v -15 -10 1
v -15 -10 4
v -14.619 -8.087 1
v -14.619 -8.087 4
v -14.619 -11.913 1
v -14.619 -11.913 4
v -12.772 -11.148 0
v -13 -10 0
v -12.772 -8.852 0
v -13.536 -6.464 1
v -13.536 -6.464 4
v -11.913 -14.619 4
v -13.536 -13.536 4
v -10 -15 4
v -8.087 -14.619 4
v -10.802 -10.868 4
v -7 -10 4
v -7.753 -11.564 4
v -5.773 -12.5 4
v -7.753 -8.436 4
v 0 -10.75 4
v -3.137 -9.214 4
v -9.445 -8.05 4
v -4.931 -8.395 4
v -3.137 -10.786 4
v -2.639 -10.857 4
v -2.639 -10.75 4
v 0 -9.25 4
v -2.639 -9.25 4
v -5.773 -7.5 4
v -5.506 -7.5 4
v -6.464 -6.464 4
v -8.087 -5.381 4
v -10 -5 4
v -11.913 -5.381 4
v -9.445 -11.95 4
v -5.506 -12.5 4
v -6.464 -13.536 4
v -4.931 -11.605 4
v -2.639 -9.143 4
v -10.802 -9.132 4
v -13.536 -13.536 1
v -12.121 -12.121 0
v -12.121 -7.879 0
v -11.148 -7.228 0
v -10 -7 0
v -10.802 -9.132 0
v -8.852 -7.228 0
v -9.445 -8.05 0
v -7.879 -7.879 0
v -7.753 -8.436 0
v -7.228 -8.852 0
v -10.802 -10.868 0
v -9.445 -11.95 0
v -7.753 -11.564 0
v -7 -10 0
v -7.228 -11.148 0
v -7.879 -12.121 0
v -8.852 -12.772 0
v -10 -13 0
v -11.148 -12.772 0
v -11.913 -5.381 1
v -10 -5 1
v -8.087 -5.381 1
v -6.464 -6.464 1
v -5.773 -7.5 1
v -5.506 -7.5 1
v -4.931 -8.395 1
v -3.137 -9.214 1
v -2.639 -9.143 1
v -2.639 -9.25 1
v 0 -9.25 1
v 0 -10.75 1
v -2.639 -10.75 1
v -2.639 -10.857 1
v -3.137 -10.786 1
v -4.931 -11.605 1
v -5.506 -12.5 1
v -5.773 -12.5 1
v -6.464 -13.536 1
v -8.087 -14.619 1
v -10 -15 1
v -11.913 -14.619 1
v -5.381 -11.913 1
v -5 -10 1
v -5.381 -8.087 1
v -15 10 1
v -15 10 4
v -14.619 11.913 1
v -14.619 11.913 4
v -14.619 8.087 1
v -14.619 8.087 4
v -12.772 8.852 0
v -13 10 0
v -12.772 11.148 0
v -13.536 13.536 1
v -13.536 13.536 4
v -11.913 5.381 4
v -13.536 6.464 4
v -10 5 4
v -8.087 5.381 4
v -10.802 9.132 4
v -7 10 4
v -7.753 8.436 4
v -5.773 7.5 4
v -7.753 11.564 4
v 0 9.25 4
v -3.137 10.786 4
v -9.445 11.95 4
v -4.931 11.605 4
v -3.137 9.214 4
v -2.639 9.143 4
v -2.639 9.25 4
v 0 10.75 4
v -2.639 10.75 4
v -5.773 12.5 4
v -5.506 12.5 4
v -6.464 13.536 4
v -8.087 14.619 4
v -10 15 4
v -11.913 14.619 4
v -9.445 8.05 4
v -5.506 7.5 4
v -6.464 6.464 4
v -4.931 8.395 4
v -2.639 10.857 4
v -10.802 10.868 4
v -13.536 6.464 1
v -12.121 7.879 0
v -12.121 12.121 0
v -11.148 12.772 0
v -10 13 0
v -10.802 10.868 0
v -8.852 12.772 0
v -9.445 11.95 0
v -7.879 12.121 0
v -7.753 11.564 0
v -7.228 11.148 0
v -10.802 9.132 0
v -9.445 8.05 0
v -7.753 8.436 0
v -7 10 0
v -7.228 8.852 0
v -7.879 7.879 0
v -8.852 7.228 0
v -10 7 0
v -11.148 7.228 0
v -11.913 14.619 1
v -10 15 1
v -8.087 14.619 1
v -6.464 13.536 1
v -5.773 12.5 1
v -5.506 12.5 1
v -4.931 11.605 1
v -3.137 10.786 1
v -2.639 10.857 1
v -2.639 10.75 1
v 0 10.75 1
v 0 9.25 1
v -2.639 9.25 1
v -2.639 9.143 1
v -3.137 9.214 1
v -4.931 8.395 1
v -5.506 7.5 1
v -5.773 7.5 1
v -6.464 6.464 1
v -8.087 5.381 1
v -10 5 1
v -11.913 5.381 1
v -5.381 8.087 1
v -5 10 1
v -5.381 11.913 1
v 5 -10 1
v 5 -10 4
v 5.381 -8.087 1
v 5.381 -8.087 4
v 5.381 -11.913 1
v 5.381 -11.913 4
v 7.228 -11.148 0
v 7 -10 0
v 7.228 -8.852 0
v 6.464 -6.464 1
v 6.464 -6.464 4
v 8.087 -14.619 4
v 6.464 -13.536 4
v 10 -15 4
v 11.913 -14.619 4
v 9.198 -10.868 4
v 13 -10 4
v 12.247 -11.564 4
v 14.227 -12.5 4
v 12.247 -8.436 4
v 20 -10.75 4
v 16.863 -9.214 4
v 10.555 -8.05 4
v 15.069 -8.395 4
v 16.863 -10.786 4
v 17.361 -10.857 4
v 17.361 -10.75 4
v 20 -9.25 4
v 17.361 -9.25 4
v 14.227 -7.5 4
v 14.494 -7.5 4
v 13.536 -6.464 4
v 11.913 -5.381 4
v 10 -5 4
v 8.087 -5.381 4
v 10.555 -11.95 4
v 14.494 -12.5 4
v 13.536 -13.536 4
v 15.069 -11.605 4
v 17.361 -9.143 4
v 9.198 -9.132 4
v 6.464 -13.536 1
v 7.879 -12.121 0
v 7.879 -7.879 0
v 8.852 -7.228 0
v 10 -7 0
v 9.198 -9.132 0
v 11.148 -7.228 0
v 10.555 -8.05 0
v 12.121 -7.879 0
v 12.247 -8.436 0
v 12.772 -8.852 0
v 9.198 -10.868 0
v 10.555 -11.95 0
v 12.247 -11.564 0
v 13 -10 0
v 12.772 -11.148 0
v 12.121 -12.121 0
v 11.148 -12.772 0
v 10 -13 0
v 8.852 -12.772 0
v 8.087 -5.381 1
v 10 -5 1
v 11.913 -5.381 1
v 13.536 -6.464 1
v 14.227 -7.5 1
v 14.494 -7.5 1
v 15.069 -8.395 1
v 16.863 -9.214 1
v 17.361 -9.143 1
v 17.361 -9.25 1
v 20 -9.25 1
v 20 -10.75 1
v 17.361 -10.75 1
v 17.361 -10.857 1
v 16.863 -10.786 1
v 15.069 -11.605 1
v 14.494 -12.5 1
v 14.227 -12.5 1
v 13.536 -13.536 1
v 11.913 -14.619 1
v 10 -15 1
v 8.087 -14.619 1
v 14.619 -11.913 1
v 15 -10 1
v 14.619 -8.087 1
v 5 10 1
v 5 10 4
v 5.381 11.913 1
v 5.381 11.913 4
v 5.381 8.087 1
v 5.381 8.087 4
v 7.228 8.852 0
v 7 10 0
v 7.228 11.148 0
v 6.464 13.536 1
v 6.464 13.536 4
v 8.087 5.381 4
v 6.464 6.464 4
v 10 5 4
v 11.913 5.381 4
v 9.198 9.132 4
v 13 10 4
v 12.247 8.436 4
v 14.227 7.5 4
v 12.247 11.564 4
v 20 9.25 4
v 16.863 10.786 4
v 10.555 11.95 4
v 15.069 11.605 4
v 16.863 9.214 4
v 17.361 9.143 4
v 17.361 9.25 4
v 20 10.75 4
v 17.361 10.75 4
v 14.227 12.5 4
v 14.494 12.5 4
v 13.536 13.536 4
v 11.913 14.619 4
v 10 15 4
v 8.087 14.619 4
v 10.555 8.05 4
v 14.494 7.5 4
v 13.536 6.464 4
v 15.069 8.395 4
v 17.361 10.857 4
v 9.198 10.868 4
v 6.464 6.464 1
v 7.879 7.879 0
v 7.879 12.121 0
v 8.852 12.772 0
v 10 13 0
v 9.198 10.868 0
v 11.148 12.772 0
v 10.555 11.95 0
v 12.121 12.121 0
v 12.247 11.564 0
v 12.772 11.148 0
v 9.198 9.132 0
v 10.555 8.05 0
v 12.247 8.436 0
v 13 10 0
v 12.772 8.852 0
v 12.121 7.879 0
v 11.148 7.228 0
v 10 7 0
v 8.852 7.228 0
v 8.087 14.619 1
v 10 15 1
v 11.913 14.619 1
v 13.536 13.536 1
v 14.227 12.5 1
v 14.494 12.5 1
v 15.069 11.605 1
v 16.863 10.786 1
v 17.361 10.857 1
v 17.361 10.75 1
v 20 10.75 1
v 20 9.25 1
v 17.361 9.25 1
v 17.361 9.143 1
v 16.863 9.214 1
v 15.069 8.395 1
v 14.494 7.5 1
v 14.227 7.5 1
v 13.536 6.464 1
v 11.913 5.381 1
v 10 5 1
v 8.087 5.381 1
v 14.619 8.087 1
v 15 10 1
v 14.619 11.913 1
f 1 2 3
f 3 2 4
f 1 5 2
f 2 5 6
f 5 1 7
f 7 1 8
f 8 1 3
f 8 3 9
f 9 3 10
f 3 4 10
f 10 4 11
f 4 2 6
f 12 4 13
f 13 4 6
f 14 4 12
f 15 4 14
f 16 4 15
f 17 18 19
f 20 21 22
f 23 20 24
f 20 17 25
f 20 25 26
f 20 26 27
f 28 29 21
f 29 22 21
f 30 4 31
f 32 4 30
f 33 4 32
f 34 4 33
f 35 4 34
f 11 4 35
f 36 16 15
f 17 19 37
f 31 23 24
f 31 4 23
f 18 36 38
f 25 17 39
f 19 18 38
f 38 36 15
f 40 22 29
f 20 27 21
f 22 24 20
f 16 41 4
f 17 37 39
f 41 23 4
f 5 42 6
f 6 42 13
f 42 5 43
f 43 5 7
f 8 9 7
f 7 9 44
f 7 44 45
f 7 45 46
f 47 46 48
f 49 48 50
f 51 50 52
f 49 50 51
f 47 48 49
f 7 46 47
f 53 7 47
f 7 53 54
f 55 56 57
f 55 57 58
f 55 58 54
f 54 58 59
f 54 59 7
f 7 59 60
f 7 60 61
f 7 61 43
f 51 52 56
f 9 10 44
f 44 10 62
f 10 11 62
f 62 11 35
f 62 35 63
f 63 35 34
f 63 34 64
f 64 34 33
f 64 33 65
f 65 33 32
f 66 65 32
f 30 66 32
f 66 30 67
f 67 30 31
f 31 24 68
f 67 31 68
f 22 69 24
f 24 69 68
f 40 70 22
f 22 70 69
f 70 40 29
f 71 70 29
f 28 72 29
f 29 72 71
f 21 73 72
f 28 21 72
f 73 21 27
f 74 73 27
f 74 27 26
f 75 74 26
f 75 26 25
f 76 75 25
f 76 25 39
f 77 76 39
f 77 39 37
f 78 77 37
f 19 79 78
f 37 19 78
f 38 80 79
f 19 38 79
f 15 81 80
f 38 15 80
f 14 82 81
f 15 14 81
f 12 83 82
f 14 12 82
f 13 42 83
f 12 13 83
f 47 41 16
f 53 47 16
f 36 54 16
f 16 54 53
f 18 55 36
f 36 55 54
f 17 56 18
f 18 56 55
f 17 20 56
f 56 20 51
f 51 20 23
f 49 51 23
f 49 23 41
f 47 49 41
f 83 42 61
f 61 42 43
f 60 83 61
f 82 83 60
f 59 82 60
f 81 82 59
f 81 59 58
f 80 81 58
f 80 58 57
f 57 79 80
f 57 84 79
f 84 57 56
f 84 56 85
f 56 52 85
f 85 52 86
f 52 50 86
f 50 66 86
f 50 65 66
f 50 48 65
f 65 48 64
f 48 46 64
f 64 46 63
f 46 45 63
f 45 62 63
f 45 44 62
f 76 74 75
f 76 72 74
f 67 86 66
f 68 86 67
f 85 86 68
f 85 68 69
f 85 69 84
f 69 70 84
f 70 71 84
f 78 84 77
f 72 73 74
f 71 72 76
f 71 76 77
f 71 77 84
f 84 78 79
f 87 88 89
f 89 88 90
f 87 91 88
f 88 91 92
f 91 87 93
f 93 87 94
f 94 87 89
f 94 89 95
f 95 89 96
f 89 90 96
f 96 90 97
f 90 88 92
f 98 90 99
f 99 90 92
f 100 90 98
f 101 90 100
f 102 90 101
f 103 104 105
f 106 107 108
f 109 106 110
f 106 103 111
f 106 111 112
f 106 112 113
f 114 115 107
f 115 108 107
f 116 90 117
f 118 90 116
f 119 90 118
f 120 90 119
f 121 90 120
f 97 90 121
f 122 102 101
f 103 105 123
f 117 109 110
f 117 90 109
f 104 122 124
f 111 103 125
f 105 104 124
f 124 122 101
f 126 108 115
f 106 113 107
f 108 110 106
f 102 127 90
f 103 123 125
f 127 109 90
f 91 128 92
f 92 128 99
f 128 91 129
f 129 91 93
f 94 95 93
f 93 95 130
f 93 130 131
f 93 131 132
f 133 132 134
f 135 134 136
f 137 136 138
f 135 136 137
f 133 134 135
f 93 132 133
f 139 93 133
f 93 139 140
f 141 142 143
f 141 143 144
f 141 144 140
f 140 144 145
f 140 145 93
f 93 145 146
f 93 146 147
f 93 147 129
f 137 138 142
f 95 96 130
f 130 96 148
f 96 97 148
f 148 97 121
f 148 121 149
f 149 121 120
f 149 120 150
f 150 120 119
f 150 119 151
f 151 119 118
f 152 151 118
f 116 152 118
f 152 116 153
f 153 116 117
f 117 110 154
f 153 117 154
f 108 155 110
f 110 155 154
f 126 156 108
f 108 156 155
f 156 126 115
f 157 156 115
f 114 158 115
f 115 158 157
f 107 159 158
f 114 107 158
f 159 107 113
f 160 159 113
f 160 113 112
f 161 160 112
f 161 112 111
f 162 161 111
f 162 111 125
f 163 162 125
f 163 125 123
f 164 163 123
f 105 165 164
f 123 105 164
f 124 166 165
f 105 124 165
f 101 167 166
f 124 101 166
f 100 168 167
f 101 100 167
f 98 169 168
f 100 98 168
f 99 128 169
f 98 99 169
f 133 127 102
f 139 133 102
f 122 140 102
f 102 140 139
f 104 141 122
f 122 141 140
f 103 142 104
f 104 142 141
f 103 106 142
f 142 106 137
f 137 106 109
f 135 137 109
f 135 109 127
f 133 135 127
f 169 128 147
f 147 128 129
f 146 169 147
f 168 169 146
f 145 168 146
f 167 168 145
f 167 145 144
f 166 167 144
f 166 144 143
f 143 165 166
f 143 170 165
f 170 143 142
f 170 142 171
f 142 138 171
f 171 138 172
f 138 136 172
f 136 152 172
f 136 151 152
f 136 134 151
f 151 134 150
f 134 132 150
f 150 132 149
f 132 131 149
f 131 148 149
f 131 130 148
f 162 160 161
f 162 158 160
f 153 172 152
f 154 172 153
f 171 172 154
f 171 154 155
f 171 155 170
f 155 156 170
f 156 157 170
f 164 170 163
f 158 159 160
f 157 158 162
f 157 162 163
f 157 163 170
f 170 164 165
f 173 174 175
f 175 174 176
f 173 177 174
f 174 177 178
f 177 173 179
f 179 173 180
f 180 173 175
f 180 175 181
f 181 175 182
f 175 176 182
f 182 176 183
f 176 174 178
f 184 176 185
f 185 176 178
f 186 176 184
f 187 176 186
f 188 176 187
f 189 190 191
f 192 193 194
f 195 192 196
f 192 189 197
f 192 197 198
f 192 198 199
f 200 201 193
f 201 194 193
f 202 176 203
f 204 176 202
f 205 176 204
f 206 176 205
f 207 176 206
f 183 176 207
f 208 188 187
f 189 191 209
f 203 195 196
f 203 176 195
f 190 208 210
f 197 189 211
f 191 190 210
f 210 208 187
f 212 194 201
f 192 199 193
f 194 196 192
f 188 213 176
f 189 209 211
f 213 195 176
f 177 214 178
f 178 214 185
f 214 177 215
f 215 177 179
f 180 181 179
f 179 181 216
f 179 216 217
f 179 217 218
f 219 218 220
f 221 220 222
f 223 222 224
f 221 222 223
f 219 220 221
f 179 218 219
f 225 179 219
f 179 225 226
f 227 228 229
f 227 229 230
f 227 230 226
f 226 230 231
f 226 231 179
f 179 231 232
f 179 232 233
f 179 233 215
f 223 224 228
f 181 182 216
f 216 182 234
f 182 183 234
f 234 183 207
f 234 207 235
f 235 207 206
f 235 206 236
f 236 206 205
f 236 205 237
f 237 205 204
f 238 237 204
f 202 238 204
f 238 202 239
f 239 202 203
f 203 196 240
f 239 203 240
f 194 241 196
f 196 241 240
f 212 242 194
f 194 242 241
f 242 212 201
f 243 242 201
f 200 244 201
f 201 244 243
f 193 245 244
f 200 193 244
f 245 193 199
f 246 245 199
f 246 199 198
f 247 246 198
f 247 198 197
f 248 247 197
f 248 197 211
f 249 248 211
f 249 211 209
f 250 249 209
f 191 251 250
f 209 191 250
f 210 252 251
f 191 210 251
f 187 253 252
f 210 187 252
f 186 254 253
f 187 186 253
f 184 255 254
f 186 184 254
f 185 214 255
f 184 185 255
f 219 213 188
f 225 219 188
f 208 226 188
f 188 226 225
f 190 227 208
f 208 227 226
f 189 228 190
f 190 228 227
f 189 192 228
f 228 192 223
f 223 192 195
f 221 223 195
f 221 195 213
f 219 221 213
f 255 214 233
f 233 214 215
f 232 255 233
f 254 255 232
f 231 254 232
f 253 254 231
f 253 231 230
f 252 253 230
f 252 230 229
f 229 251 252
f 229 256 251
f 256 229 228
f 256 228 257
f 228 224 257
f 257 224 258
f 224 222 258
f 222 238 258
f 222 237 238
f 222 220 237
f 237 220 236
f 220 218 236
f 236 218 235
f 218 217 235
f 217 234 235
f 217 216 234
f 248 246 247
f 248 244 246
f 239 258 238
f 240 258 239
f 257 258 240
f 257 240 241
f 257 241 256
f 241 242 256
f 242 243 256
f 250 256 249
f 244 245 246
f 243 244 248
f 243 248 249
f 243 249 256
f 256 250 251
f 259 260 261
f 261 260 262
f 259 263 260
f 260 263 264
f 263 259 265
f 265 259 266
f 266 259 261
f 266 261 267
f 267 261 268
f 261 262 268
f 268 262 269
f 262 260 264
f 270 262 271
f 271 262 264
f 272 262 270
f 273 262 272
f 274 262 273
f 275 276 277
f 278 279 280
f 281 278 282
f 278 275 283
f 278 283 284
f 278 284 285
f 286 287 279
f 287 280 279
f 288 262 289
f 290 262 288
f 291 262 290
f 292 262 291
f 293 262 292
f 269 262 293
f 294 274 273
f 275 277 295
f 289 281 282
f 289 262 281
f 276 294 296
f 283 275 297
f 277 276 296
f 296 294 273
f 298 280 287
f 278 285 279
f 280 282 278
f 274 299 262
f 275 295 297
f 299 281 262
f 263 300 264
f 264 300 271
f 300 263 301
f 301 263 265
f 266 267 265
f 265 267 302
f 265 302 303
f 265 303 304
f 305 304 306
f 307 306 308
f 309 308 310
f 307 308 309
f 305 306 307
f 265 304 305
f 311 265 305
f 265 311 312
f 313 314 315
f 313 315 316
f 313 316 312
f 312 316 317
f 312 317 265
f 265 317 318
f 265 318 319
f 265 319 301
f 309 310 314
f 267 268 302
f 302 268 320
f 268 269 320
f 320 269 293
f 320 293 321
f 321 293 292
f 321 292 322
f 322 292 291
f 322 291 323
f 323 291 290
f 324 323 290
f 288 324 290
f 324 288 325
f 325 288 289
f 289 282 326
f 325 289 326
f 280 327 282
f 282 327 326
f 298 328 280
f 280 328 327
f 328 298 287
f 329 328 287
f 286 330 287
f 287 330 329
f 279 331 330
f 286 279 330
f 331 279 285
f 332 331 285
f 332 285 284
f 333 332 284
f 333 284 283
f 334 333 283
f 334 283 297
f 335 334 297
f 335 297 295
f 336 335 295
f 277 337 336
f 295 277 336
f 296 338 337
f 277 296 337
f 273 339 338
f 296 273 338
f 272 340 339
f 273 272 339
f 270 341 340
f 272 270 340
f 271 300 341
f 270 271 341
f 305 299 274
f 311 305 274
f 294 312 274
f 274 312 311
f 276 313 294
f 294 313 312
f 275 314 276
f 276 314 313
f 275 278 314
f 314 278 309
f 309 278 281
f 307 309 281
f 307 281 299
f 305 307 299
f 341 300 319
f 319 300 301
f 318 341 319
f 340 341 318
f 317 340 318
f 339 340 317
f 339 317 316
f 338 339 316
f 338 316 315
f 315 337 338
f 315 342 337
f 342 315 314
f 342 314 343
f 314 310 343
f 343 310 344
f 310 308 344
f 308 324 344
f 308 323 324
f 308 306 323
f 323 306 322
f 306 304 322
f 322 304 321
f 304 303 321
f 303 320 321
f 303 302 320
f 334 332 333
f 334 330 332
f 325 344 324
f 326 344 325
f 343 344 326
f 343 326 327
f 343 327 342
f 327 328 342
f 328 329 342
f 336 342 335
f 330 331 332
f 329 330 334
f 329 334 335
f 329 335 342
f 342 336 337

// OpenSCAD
// od = Outside diameter
// id = ionside (hole) diameter
// rt = retainer thickness
// ho = hole offset
// bh = Bevel height
// ll = lever length
// d  = delta
module PrintBedRetainer(od, id, rt, ho, bh, ll, lt, d)
{
	s30 = sin(30);
    c30 = cos(30);
    lfr = (od-lt)/2;		// Lever fillet radius		
    lfp = od/2+lfr;		// Lever fillet pitch radius
    intersection()
    {
	    	difference()
		{
			union()
        		{
				cylinder(r=od/2, h=rt);
				translate([0,-od/4,0]) cube(size=[ll, od/2, rt]);
			}
			translate([ho,0,-d]) cylinder(r=id/2, h=rt+2*d);
			translate([c30*lfp,-s30*lfp,-d])
			{	
				cylinder(r=lfr, h=rt+2*d);
				translate([0,-lfr,0]) cube(size=[ll, lfr*2, rt+2*d] );
			}
			translate([c30*lfp,+s30*lfp,-d])
			{	
				cylinder(r=lfr, h=rt+2*d);
				translate([0,-lfr,0]) cube(size=[ll, lfr*2, rt+2*d] );
			}
    		}
		union()
        {
			cylinder(r1=od/2-bh*2, r2=od/2, h=bh);
        		translate([0,0,bh]) cylinder(r=ll+d, h=rt);
      	}
	}
}

// Actual objects here

ll = 10;
for (xo = [-ll, ll])
{
	for ( yo = [-ll, ll])
	{
		translate([xo, yo, 0])
			PrintBedRetainer(10, 4, 4, 1, 1, ll, 3, 1);
	}
}
